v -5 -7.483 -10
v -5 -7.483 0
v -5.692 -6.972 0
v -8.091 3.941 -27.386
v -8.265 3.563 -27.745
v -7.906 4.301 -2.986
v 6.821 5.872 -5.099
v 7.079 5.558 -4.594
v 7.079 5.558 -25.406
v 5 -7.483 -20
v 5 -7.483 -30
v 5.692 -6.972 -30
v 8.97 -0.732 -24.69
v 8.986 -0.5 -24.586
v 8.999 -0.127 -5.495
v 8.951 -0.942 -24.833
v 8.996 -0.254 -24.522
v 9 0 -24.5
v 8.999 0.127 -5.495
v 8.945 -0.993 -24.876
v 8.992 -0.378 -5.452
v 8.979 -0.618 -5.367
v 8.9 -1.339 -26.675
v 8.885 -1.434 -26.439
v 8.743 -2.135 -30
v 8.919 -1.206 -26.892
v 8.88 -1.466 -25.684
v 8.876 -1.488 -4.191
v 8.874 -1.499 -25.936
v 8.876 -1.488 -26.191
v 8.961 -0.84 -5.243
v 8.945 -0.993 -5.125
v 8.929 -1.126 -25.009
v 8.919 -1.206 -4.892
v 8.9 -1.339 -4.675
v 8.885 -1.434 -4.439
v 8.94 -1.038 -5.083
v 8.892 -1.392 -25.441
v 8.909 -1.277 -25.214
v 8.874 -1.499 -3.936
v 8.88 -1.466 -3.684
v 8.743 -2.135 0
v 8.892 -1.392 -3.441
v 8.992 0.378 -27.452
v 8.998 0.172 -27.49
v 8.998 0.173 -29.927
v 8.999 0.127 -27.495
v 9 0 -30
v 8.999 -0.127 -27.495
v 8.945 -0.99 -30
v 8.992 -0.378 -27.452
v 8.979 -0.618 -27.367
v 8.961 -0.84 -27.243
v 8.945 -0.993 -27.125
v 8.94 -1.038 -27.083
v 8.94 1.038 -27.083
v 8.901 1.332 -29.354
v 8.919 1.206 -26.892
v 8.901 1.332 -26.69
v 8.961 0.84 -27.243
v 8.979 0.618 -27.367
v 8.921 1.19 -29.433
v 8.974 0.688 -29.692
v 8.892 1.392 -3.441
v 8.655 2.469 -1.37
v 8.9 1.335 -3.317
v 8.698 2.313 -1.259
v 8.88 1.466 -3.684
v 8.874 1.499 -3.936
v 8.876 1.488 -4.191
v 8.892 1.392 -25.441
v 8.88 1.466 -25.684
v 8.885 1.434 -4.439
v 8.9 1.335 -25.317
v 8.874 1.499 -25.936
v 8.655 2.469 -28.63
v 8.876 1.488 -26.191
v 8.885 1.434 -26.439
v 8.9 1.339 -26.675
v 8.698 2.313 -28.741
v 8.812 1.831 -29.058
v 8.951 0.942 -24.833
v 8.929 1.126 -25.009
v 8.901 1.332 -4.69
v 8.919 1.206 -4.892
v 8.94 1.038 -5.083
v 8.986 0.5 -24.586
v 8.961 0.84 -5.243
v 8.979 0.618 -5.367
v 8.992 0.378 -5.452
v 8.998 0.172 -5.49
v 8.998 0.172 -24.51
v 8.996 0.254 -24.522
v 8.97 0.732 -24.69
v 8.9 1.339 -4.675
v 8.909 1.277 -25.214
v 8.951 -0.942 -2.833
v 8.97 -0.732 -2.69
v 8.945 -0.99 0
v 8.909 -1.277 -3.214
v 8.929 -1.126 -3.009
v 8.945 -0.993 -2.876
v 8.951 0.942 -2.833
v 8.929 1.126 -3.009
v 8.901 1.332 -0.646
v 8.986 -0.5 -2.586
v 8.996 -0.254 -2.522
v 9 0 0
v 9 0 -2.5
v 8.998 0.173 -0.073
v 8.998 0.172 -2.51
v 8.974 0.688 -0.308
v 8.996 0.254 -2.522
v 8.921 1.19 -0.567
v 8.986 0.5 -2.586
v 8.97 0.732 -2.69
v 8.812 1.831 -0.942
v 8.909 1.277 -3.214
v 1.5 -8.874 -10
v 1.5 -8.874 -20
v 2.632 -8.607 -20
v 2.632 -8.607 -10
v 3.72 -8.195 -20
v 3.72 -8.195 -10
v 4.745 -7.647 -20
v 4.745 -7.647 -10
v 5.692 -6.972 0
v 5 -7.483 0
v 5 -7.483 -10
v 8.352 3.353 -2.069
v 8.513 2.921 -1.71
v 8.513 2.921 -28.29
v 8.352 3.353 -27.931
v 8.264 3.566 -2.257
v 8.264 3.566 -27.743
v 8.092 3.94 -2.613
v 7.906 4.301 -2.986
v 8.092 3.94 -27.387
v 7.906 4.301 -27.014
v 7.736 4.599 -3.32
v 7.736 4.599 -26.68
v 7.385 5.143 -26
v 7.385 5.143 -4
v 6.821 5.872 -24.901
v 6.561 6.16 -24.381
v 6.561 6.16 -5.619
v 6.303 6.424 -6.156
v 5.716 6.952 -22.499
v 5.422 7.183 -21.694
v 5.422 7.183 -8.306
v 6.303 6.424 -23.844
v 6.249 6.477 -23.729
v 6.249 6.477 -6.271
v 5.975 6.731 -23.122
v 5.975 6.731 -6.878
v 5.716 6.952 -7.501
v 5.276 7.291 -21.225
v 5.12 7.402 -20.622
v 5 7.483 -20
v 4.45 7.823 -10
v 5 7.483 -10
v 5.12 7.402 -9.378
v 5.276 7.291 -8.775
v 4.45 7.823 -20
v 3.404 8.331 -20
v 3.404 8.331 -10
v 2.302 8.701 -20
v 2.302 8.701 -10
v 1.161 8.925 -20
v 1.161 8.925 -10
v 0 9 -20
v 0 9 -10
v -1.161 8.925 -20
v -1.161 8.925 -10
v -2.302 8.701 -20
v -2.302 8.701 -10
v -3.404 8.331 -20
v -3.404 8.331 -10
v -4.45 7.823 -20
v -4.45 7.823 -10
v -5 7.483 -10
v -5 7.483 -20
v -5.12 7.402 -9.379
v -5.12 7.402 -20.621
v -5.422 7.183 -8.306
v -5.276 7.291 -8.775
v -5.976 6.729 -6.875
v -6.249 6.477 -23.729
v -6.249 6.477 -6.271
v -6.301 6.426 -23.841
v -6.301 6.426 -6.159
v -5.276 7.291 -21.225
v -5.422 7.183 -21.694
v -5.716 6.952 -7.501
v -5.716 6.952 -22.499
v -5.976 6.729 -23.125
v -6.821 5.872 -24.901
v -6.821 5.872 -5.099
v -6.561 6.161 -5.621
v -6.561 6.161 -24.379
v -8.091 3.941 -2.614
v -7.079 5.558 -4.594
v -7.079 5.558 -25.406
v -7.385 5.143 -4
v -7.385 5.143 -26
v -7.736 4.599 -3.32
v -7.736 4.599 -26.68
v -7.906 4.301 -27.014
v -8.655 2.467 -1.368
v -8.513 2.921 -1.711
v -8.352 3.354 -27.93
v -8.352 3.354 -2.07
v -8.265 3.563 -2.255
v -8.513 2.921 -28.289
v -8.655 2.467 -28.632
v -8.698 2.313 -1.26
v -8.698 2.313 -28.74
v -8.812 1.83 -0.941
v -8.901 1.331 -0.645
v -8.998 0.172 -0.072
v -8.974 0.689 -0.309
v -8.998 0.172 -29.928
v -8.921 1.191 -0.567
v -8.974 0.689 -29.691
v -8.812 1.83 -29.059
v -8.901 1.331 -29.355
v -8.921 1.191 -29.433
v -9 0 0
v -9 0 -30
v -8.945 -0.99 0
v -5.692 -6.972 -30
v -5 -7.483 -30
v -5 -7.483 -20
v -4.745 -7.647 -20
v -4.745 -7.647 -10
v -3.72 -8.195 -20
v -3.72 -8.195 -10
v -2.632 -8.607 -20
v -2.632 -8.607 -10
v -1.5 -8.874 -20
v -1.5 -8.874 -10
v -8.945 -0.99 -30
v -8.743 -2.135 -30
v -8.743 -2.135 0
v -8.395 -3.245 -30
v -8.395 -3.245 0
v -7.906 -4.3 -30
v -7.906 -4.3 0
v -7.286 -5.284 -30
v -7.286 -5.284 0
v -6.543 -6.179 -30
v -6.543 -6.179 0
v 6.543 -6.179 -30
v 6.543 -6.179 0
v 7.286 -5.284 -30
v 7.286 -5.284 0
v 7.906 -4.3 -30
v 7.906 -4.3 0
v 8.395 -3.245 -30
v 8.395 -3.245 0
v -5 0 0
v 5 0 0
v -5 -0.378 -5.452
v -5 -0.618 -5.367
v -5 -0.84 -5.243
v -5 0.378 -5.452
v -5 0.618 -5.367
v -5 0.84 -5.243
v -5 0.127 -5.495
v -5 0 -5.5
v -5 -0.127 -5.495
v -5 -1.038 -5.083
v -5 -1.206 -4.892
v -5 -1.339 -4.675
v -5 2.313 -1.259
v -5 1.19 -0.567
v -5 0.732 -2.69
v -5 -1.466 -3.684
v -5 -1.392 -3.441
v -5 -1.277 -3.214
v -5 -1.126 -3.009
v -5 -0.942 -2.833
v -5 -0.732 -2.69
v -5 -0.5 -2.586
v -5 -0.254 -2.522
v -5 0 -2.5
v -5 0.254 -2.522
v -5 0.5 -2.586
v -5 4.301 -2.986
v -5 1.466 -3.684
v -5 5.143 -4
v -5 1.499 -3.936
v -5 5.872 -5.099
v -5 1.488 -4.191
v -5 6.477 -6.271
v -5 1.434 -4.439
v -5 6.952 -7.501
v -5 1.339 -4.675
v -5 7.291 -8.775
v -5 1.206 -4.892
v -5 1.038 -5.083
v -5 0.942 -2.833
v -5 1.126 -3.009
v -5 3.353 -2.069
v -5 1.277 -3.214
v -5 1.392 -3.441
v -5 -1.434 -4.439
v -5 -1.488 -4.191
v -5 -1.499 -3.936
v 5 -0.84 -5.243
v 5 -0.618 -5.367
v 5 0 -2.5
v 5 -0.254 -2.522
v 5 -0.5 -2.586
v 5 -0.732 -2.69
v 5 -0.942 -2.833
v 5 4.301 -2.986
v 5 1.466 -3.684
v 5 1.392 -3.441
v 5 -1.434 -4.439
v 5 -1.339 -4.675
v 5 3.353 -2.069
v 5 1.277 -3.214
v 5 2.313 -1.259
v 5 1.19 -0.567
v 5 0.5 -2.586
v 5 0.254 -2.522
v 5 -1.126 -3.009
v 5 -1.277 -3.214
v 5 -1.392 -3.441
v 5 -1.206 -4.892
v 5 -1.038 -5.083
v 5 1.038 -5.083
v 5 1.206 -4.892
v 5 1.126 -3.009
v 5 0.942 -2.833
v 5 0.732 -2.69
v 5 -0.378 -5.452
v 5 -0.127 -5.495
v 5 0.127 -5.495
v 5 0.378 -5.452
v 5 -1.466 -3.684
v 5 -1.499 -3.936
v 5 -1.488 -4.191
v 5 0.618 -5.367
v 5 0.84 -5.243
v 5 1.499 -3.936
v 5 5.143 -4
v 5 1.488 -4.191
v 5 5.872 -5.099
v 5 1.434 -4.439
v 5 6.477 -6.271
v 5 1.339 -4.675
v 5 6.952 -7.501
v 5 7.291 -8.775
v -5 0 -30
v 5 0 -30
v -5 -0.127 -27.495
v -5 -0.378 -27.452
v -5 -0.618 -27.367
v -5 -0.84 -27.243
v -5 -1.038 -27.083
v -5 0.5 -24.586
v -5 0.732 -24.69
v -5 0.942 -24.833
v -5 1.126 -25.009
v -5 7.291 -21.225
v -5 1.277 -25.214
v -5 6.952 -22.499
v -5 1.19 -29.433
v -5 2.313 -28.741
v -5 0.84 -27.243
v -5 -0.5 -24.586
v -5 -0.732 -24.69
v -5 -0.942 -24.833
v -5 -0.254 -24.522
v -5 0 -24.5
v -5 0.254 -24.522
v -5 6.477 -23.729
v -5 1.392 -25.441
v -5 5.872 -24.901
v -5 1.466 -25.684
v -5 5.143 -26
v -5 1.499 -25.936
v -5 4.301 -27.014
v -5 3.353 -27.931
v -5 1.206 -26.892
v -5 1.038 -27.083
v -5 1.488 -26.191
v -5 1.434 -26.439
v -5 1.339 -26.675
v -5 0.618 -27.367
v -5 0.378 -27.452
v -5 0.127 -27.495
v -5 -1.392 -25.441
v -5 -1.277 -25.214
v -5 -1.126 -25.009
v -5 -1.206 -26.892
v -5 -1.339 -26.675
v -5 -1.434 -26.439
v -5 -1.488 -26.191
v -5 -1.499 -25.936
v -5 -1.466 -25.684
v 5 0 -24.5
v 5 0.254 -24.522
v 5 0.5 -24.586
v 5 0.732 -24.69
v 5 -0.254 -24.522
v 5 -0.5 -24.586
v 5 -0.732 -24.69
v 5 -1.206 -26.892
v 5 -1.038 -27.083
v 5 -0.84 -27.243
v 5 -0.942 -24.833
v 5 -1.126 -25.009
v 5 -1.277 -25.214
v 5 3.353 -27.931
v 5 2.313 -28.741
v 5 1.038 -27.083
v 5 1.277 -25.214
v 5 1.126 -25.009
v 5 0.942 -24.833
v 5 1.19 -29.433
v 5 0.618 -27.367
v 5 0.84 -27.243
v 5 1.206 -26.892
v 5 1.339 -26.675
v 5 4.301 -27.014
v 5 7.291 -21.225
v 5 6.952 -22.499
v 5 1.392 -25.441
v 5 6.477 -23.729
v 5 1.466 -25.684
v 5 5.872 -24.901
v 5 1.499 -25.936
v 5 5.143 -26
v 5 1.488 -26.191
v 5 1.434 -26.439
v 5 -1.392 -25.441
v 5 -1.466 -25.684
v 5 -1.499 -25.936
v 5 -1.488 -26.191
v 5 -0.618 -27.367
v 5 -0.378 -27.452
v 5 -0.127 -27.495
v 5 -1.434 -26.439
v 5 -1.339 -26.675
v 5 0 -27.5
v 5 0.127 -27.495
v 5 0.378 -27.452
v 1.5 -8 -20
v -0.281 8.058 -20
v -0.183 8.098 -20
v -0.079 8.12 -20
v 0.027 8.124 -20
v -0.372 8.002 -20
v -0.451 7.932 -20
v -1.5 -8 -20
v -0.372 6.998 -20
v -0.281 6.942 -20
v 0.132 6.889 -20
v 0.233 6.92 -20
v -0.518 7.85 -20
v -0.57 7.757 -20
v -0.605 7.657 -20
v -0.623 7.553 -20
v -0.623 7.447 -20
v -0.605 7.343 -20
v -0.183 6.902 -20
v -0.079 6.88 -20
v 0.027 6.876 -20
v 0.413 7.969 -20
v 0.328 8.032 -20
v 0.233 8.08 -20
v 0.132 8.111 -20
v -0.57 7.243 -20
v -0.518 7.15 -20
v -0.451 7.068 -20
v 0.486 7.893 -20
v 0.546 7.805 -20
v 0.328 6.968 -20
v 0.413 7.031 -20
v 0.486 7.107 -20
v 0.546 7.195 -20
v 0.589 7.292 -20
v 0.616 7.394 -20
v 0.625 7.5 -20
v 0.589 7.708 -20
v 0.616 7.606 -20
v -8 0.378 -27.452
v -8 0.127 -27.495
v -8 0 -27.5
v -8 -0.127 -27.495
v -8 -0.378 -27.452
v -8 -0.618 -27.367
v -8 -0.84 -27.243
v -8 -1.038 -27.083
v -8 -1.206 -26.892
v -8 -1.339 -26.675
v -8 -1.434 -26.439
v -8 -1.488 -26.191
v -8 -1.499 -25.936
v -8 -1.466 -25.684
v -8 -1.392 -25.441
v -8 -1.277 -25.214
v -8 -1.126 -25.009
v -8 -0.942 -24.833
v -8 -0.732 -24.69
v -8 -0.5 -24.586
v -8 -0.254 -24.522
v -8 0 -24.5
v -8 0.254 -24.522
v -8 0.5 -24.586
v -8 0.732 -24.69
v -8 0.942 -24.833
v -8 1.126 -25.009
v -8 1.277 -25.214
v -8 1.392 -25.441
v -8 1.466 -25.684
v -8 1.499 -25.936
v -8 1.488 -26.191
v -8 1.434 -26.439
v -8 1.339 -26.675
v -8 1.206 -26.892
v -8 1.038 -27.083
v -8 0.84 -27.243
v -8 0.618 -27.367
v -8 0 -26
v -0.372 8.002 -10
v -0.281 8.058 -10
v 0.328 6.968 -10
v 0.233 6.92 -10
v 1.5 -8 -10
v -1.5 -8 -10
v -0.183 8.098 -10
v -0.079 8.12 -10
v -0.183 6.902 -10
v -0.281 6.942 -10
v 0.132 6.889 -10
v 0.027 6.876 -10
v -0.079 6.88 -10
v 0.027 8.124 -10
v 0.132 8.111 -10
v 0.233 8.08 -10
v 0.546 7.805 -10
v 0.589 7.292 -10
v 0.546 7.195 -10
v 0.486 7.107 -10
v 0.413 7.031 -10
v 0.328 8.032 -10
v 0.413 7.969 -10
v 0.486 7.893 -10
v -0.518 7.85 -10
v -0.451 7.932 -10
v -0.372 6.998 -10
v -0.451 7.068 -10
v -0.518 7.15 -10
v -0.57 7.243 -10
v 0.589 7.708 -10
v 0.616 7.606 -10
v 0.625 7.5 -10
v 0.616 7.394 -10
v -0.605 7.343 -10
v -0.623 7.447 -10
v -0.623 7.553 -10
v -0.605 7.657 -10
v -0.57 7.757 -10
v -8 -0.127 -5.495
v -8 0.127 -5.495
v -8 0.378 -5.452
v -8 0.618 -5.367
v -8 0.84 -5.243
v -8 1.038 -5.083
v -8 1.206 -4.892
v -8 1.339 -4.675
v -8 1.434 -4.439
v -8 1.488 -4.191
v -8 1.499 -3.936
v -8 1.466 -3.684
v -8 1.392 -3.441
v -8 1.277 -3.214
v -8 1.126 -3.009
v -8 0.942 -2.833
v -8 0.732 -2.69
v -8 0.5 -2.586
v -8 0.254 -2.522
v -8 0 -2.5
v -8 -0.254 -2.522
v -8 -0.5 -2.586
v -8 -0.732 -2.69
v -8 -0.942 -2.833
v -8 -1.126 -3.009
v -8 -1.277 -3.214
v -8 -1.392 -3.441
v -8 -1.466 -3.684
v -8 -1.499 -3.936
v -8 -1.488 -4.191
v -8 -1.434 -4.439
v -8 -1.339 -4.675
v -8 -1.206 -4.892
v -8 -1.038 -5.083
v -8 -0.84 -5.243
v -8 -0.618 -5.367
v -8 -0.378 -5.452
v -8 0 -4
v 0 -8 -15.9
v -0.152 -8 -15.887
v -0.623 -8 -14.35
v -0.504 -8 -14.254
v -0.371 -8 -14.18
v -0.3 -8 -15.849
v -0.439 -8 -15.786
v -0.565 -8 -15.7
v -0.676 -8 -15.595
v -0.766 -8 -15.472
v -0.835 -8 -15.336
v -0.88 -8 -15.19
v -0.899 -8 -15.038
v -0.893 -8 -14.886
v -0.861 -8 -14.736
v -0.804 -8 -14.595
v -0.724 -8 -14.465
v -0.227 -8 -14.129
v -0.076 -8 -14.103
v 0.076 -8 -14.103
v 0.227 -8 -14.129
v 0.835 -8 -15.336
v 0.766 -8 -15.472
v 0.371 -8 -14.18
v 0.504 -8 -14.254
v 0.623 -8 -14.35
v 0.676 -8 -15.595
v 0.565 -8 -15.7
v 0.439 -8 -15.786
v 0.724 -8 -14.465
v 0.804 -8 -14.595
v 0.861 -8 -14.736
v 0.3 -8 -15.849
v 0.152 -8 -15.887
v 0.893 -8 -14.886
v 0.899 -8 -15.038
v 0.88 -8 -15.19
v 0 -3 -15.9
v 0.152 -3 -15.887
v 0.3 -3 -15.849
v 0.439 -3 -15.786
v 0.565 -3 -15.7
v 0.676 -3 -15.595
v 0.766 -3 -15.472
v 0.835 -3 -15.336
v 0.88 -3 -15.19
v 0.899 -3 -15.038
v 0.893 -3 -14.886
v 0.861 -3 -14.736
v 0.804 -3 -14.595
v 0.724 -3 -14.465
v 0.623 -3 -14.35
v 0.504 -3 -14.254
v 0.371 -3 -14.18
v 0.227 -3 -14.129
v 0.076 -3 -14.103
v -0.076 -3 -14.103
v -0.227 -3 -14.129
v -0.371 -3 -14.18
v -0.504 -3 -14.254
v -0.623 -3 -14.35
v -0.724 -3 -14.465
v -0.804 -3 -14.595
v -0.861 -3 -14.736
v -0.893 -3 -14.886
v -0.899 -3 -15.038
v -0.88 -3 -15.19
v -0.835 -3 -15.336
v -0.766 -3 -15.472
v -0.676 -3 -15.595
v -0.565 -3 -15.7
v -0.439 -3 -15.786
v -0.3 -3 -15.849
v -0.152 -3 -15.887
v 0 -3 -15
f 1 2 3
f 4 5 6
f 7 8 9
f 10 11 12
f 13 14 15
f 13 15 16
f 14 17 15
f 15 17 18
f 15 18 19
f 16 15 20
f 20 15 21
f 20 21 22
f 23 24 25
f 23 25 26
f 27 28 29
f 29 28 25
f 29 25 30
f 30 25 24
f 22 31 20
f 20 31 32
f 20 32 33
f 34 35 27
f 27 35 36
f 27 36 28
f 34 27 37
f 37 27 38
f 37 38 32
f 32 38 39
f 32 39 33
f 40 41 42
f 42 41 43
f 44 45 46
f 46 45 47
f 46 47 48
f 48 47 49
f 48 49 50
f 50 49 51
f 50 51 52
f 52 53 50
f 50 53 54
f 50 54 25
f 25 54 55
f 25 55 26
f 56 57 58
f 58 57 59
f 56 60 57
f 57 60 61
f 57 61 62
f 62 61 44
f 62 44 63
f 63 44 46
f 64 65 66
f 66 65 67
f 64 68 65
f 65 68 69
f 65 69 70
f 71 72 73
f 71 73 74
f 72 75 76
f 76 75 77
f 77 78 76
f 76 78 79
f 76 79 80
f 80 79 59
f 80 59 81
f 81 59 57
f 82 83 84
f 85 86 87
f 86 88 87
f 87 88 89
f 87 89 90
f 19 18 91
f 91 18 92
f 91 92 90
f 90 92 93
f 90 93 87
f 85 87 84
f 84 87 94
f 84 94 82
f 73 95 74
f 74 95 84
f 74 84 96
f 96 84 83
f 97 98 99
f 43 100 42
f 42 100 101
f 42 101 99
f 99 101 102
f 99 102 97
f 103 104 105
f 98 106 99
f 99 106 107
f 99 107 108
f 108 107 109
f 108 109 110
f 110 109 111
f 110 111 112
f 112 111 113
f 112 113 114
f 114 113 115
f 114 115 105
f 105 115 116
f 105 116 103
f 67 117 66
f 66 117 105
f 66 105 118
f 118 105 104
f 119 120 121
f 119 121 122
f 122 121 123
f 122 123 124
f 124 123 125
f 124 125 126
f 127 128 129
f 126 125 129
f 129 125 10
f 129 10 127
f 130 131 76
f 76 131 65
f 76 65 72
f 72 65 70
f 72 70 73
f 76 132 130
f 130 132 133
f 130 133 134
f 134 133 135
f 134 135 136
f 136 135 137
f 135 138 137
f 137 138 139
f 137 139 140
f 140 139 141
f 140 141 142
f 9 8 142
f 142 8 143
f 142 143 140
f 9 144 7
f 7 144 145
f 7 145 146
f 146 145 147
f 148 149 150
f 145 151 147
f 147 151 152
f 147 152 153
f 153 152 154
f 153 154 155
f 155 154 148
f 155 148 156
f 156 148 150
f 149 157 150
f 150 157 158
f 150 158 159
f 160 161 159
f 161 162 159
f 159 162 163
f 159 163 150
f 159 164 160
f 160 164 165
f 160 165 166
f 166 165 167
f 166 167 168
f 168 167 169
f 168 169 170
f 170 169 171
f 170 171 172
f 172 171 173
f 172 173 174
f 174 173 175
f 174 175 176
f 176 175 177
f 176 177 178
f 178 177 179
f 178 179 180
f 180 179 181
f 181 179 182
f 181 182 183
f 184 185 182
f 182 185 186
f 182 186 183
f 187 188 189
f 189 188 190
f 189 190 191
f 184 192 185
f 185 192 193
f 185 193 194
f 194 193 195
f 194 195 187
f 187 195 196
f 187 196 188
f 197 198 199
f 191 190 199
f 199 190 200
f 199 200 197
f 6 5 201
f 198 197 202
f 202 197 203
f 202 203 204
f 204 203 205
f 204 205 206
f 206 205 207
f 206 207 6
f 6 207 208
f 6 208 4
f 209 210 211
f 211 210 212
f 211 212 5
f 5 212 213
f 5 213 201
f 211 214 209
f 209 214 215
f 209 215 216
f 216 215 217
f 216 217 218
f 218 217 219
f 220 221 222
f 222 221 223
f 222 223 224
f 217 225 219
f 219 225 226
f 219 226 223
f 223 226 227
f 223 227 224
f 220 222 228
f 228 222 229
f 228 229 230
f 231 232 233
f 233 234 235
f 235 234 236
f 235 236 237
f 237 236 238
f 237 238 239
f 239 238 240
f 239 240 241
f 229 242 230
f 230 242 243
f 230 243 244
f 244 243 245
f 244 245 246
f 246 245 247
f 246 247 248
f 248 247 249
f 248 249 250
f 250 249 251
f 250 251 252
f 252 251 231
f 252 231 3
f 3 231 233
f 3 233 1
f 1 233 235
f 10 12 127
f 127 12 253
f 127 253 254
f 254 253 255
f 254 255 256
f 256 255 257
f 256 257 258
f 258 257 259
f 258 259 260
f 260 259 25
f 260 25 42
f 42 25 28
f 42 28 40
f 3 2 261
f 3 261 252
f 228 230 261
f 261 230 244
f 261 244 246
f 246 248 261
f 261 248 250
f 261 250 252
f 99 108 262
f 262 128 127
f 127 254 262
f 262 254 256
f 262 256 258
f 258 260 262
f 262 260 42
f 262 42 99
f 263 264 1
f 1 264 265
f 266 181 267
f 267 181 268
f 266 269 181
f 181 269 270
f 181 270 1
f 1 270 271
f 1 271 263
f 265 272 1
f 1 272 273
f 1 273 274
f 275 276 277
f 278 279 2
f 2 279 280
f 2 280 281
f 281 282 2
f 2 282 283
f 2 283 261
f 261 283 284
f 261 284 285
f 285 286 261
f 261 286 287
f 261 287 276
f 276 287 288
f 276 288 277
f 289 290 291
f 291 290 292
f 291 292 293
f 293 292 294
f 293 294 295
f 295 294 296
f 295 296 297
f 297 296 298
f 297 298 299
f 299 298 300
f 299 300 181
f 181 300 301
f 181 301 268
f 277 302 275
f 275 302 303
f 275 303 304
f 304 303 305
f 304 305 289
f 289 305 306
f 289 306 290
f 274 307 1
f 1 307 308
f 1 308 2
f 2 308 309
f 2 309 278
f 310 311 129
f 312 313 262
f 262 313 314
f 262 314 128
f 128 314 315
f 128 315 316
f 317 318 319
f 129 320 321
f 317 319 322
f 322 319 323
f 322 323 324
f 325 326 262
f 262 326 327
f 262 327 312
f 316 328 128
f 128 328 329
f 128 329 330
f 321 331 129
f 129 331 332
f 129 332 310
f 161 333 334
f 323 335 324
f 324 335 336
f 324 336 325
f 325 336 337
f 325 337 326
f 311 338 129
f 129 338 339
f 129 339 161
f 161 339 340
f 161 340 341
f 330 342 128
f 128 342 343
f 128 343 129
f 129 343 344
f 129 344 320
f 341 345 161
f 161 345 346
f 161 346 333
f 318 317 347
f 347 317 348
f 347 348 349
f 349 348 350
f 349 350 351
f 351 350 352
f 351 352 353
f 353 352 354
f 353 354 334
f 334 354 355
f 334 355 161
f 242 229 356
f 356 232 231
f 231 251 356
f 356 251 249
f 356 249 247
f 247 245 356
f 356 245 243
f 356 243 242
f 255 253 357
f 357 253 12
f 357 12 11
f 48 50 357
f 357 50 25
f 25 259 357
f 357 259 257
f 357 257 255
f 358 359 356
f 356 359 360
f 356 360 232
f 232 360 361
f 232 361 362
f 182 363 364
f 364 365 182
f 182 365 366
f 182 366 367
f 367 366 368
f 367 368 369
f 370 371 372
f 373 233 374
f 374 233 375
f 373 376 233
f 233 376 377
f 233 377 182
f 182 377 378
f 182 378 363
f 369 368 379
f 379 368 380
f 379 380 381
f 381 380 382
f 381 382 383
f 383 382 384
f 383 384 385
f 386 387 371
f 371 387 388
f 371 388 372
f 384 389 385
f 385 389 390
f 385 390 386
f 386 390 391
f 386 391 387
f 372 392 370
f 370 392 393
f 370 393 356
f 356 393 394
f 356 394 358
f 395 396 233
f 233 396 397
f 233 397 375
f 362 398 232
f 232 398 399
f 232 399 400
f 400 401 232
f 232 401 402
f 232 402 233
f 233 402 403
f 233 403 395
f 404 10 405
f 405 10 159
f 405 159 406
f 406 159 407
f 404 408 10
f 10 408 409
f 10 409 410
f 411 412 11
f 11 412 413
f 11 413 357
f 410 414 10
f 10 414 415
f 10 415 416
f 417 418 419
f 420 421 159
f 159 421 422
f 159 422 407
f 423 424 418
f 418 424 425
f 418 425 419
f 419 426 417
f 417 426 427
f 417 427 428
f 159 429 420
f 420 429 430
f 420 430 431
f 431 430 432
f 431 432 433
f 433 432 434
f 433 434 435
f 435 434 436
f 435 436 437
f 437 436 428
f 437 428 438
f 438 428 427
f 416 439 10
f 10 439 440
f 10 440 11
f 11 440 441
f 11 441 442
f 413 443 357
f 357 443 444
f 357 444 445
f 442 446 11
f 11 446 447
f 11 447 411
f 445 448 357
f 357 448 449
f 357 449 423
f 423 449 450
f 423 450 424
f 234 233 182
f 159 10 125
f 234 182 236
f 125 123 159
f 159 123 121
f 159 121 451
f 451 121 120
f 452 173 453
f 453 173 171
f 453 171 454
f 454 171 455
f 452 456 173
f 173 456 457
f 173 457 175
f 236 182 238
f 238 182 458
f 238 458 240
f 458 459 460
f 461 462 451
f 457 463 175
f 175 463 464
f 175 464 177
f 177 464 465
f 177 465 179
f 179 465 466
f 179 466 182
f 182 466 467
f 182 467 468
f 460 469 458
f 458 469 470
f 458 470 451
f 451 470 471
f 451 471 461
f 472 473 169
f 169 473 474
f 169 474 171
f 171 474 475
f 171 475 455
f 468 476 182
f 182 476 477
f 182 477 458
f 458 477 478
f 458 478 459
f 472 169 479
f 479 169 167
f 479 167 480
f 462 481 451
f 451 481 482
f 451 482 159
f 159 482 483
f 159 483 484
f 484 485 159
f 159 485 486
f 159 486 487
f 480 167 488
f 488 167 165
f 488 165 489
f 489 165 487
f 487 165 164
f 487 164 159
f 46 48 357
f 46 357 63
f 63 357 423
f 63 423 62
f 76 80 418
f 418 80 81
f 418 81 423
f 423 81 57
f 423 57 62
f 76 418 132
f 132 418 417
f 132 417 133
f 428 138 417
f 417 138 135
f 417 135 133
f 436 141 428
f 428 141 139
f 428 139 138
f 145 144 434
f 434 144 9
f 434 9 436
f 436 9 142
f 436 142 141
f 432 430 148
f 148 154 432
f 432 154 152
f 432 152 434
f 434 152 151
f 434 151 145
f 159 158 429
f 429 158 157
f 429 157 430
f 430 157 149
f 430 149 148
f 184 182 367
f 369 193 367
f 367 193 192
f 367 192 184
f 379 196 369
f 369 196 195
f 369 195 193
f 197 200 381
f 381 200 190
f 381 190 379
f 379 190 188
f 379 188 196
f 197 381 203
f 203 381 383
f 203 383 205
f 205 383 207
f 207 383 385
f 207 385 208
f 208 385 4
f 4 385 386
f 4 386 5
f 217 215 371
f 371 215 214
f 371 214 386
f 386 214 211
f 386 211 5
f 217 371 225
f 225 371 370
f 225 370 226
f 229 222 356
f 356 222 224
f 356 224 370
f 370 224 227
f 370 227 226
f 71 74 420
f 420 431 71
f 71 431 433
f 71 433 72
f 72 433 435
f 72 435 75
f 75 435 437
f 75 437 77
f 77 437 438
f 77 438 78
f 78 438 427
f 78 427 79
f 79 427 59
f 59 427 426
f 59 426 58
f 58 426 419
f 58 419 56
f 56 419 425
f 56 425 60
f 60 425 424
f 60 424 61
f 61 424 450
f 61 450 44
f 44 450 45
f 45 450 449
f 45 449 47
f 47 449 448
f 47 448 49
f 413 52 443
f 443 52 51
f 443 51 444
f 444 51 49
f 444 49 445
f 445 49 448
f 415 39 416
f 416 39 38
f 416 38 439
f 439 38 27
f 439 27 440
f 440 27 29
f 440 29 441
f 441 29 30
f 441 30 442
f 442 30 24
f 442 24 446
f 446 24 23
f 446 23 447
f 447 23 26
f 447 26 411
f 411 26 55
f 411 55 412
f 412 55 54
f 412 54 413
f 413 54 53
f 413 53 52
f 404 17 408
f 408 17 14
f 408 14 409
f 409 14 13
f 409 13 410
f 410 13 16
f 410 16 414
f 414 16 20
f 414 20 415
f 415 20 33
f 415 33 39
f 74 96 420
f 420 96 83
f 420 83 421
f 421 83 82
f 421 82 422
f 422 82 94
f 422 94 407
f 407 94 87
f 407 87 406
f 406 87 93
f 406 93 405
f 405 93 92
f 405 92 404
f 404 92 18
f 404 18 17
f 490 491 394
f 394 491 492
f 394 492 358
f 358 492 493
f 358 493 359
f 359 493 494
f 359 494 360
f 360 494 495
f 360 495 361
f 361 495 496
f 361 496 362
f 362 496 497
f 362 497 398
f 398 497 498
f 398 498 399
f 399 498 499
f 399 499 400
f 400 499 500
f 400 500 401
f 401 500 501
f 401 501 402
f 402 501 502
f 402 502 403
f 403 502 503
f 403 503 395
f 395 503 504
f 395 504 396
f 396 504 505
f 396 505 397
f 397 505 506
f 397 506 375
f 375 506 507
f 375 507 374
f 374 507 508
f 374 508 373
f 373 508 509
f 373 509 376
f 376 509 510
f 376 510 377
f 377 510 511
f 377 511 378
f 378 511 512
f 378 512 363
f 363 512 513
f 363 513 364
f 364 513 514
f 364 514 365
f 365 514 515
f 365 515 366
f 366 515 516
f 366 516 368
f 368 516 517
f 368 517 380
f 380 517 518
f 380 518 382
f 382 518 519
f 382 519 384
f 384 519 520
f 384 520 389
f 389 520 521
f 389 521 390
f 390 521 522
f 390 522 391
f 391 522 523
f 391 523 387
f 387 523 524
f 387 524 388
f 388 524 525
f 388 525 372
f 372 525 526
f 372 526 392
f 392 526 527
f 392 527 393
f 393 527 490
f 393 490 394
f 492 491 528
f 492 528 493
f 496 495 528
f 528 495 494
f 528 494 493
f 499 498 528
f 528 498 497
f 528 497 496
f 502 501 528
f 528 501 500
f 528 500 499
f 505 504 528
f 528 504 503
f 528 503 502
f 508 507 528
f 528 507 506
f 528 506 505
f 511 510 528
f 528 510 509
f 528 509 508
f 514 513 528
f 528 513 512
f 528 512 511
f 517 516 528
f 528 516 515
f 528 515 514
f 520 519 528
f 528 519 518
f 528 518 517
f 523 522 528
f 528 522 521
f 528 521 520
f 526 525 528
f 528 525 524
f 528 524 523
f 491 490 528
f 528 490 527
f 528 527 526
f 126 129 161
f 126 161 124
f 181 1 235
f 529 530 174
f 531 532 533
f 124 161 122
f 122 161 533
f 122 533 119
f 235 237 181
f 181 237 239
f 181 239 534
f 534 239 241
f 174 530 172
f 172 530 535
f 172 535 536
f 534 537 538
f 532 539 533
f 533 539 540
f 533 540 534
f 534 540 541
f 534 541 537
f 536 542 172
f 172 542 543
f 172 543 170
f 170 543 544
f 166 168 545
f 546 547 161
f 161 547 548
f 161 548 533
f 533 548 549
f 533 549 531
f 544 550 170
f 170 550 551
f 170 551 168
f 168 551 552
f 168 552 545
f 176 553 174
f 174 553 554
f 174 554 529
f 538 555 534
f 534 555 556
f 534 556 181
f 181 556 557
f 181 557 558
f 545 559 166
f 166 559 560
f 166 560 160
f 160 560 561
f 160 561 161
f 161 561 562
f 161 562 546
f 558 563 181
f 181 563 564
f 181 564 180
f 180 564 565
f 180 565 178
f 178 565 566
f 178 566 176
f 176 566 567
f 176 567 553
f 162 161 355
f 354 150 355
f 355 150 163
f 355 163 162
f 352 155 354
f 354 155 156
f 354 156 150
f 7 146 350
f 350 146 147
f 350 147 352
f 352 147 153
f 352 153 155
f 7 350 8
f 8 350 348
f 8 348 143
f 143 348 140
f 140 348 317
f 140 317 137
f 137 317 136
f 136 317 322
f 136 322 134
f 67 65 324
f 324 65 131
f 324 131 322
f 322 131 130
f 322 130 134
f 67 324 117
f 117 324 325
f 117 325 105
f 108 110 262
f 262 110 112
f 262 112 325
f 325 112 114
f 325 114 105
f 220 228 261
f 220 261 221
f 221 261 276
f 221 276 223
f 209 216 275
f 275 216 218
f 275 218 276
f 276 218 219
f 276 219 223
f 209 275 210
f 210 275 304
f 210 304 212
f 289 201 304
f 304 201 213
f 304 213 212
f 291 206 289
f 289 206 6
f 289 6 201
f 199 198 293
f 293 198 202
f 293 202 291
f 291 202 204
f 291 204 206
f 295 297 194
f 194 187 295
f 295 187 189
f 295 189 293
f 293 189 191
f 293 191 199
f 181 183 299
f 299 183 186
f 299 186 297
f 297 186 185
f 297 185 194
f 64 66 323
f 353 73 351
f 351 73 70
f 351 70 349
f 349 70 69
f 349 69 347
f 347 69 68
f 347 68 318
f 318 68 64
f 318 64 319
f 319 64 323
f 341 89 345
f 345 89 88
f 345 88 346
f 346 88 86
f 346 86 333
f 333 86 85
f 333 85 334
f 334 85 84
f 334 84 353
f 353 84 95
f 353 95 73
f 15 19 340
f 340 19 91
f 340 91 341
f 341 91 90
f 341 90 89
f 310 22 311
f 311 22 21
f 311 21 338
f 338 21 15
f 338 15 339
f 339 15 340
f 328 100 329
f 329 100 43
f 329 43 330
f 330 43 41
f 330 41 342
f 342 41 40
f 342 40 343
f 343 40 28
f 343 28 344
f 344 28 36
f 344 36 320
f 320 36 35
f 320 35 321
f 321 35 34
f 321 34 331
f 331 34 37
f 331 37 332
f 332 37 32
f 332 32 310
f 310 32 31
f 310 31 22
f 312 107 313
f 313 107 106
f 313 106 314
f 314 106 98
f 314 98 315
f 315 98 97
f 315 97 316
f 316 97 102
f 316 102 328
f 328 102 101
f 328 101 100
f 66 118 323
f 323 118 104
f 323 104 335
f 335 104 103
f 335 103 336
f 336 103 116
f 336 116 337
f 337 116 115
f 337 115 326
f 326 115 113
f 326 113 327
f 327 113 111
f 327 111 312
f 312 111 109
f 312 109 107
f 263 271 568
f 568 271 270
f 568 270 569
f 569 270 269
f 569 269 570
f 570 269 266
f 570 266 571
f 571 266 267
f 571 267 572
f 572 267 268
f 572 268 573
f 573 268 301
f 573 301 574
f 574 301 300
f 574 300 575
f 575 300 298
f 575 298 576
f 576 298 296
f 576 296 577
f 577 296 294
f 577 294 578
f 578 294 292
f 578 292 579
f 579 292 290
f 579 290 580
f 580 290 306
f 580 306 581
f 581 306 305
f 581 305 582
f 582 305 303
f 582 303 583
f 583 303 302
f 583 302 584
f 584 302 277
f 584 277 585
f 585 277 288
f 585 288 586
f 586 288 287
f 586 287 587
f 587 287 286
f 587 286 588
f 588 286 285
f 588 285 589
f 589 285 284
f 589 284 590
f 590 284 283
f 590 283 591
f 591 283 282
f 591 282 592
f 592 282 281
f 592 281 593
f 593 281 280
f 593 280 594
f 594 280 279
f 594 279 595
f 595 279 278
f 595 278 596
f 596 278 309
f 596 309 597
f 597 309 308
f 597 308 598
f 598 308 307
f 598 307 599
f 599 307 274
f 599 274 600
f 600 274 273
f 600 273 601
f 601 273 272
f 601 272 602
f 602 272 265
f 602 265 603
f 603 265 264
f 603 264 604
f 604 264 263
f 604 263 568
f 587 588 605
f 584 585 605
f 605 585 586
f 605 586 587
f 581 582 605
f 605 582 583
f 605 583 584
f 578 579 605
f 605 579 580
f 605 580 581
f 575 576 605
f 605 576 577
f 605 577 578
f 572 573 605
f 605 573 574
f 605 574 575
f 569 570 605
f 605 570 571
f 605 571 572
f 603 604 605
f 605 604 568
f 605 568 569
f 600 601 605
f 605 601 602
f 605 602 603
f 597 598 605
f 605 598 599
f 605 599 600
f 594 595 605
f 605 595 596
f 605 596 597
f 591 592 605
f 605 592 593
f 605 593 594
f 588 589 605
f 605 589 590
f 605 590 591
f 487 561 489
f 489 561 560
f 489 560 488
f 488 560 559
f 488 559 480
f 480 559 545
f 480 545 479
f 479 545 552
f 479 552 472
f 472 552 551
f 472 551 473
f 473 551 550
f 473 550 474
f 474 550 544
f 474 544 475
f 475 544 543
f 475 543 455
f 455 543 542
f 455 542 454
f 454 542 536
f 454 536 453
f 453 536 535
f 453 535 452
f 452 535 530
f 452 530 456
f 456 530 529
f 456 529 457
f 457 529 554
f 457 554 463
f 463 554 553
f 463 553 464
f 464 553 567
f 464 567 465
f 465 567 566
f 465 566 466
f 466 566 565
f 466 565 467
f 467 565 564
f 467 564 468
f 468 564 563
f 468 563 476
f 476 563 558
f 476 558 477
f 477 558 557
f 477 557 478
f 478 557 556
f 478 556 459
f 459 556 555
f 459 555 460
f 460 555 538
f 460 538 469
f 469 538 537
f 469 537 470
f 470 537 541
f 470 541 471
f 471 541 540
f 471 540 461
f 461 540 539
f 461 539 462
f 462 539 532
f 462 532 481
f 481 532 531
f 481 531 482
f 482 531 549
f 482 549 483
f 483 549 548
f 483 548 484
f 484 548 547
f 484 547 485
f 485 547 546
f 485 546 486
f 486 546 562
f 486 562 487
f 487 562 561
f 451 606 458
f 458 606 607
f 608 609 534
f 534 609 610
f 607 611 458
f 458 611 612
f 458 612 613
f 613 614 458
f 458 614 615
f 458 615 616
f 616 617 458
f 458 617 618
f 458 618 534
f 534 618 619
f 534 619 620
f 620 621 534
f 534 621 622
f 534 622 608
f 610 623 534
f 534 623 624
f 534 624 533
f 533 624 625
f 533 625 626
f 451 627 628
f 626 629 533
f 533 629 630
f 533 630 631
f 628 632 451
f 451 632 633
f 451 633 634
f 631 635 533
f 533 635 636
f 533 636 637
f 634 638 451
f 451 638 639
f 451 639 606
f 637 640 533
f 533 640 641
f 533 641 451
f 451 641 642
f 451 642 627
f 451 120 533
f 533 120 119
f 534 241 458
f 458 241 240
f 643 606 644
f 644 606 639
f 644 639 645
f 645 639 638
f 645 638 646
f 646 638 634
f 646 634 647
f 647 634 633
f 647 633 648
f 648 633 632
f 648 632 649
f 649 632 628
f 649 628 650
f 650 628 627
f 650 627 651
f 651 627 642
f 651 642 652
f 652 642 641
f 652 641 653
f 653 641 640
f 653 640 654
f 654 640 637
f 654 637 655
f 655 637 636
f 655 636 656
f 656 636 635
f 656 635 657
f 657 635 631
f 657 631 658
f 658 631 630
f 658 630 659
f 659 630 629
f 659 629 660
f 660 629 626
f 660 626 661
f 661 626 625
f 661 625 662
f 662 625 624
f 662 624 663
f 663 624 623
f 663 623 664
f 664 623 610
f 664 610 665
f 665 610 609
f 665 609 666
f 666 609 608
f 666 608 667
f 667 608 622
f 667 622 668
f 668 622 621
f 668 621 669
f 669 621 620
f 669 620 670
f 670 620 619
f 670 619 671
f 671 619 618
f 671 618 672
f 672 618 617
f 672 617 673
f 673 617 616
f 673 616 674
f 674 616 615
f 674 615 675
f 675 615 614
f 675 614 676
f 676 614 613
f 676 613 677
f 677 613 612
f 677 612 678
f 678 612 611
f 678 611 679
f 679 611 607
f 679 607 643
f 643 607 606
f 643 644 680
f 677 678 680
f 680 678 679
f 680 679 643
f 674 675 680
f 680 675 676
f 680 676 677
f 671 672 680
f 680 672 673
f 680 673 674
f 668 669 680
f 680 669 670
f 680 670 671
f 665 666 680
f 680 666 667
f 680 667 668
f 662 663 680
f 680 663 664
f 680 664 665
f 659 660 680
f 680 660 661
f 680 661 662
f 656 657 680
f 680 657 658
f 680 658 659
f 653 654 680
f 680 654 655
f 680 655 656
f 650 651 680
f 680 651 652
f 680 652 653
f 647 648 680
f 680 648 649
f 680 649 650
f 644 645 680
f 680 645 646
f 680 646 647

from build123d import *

# Parameters (mm, degrees)
SKETCH1_R           = 9
BOSS_EXTRUDE1_DEPTH = 30
SKETCH2_W           = 10
SKETCH2_H           = 10
CUT_EXTRUDE1_DEPTH  = 33.588341474
CUT_EXTRUDE3_DEPTH  = 33.588341474
CUT_EXTRUDE4_START  = -8
SKETCH4_R           = 1.5
CUT_EXTRUDE4_DEPTH  = 41.588341621
SKETCH6_R           = 0.625
CUT_EXTRUDE5_DEPTH  = 10
CUT_EXTRUDE6_REACH  = 25.707
SKETCH7_W           = 3
SKETCH7_H           = 2
SKETCH8_R           = 0.9
CUT_EXTRUDE7_DEPTH  = 5


with BuildPart() as part:
    # Sketch1 → Boss-Extrude1 (new body)
    with BuildSketch(Plane.XY):
        Circle(SKETCH1_R)
    extrude(amount=-BOSS_EXTRUDE1_DEPTH)

    # Sketch2 → Cut-Extrude1 (cut, symmetric)
    with BuildSketch(Plane(origin=(0, 0, 0), x_dir=(1, 0, 0), z_dir=(0, 1, 0))):
        with Locations((0, 25)):
            Rectangle(SKETCH2_W, SKETCH2_H)
    cut_extrude1 = extrude(amount=CUT_EXTRUDE1_DEPTH, both=True, mode=Mode.SUBTRACT)

    # Sketch5 → Cut-Extrude3 (cut, symmetric)
    with BuildSketch(Plane(origin=(0, 0, 0), x_dir=(0, 0, -1), z_dir=(1, 0, 0))):
        with BuildLine():
            Line((20, 7.483314774), (30, 7.483314774))
            Line((30, 7.483314774), (30, 0))
            ThreePointArc((30, 0), (26.031389946, 5.119910176), (20, 7.483314774))
        make_face()
    cut_extrude3 = extrude(amount=CUT_EXTRUDE3_DEPTH, both=True, mode=Mode.SUBTRACT)

    # Sketch4 → Cut-Extrude4 (cut)
    with BuildSketch(Plane(origin=(0, 0, 0), x_dir=(0, 0, -1), z_dir=(1, 0, 0)).offset(CUT_EXTRUDE4_START)):
        with Locations((26, 0)):
            Circle(SKETCH4_R)
    cut_extrude4 = extrude(amount=CUT_EXTRUDE4_DEPTH, mode=Mode.SUBTRACT)

    # Mirror1: Cut-Extrude1, Cut-Extrude3, Cut-Extrude4 across plane
    add(cut_extrude1.mirror(Plane.XY.offset(-15)), mode=Mode.SUBTRACT)
    add(cut_extrude3.mirror(Plane.XY.offset(-15)), mode=Mode.SUBTRACT)
    add(cut_extrude4.mirror(Plane.XY.offset(-15)), mode=Mode.SUBTRACT)

    # Sketch6 → Cut-Extrude5 (cut)
    with BuildSketch(Plane.XY.offset(-10)):
        with Locations((0, 7.5)):
            Circle(SKETCH6_R)
    extrude(amount=-CUT_EXTRUDE5_DEPTH, mode=Mode.SUBTRACT)

    # Sketch7 → Cut-Extrude6 (cut, up to next)
    with BuildSketch(Plane.XY.offset(-10), mode=Mode.PRIVATE) as cut_extrude6_sk1:
        with Locations((0, -9)):
            Rectangle(SKETCH7_W, SKETCH7_H)
    cut_extrude6_tool1 = extrude(cut_extrude6_sk1.sketch, amount=-CUT_EXTRUDE6_REACH, mode=Mode.PRIVATE) & part.part
    add(cut_extrude6_tool1.solids().sort_by_distance((0, -9, -10))[0], mode=Mode.SUBTRACT)

    # Sketch8 → Cut-Extrude7 (cut)
    with BuildSketch(Plane.XZ.offset(8)):
        with Locations(Location((0, -15, 0), (0, 0, 270))):
            Circle(SKETCH8_R)
    extrude(amount=-CUT_EXTRUDE7_DEPTH, mode=Mode.SUBTRACT)


solid = part.part
